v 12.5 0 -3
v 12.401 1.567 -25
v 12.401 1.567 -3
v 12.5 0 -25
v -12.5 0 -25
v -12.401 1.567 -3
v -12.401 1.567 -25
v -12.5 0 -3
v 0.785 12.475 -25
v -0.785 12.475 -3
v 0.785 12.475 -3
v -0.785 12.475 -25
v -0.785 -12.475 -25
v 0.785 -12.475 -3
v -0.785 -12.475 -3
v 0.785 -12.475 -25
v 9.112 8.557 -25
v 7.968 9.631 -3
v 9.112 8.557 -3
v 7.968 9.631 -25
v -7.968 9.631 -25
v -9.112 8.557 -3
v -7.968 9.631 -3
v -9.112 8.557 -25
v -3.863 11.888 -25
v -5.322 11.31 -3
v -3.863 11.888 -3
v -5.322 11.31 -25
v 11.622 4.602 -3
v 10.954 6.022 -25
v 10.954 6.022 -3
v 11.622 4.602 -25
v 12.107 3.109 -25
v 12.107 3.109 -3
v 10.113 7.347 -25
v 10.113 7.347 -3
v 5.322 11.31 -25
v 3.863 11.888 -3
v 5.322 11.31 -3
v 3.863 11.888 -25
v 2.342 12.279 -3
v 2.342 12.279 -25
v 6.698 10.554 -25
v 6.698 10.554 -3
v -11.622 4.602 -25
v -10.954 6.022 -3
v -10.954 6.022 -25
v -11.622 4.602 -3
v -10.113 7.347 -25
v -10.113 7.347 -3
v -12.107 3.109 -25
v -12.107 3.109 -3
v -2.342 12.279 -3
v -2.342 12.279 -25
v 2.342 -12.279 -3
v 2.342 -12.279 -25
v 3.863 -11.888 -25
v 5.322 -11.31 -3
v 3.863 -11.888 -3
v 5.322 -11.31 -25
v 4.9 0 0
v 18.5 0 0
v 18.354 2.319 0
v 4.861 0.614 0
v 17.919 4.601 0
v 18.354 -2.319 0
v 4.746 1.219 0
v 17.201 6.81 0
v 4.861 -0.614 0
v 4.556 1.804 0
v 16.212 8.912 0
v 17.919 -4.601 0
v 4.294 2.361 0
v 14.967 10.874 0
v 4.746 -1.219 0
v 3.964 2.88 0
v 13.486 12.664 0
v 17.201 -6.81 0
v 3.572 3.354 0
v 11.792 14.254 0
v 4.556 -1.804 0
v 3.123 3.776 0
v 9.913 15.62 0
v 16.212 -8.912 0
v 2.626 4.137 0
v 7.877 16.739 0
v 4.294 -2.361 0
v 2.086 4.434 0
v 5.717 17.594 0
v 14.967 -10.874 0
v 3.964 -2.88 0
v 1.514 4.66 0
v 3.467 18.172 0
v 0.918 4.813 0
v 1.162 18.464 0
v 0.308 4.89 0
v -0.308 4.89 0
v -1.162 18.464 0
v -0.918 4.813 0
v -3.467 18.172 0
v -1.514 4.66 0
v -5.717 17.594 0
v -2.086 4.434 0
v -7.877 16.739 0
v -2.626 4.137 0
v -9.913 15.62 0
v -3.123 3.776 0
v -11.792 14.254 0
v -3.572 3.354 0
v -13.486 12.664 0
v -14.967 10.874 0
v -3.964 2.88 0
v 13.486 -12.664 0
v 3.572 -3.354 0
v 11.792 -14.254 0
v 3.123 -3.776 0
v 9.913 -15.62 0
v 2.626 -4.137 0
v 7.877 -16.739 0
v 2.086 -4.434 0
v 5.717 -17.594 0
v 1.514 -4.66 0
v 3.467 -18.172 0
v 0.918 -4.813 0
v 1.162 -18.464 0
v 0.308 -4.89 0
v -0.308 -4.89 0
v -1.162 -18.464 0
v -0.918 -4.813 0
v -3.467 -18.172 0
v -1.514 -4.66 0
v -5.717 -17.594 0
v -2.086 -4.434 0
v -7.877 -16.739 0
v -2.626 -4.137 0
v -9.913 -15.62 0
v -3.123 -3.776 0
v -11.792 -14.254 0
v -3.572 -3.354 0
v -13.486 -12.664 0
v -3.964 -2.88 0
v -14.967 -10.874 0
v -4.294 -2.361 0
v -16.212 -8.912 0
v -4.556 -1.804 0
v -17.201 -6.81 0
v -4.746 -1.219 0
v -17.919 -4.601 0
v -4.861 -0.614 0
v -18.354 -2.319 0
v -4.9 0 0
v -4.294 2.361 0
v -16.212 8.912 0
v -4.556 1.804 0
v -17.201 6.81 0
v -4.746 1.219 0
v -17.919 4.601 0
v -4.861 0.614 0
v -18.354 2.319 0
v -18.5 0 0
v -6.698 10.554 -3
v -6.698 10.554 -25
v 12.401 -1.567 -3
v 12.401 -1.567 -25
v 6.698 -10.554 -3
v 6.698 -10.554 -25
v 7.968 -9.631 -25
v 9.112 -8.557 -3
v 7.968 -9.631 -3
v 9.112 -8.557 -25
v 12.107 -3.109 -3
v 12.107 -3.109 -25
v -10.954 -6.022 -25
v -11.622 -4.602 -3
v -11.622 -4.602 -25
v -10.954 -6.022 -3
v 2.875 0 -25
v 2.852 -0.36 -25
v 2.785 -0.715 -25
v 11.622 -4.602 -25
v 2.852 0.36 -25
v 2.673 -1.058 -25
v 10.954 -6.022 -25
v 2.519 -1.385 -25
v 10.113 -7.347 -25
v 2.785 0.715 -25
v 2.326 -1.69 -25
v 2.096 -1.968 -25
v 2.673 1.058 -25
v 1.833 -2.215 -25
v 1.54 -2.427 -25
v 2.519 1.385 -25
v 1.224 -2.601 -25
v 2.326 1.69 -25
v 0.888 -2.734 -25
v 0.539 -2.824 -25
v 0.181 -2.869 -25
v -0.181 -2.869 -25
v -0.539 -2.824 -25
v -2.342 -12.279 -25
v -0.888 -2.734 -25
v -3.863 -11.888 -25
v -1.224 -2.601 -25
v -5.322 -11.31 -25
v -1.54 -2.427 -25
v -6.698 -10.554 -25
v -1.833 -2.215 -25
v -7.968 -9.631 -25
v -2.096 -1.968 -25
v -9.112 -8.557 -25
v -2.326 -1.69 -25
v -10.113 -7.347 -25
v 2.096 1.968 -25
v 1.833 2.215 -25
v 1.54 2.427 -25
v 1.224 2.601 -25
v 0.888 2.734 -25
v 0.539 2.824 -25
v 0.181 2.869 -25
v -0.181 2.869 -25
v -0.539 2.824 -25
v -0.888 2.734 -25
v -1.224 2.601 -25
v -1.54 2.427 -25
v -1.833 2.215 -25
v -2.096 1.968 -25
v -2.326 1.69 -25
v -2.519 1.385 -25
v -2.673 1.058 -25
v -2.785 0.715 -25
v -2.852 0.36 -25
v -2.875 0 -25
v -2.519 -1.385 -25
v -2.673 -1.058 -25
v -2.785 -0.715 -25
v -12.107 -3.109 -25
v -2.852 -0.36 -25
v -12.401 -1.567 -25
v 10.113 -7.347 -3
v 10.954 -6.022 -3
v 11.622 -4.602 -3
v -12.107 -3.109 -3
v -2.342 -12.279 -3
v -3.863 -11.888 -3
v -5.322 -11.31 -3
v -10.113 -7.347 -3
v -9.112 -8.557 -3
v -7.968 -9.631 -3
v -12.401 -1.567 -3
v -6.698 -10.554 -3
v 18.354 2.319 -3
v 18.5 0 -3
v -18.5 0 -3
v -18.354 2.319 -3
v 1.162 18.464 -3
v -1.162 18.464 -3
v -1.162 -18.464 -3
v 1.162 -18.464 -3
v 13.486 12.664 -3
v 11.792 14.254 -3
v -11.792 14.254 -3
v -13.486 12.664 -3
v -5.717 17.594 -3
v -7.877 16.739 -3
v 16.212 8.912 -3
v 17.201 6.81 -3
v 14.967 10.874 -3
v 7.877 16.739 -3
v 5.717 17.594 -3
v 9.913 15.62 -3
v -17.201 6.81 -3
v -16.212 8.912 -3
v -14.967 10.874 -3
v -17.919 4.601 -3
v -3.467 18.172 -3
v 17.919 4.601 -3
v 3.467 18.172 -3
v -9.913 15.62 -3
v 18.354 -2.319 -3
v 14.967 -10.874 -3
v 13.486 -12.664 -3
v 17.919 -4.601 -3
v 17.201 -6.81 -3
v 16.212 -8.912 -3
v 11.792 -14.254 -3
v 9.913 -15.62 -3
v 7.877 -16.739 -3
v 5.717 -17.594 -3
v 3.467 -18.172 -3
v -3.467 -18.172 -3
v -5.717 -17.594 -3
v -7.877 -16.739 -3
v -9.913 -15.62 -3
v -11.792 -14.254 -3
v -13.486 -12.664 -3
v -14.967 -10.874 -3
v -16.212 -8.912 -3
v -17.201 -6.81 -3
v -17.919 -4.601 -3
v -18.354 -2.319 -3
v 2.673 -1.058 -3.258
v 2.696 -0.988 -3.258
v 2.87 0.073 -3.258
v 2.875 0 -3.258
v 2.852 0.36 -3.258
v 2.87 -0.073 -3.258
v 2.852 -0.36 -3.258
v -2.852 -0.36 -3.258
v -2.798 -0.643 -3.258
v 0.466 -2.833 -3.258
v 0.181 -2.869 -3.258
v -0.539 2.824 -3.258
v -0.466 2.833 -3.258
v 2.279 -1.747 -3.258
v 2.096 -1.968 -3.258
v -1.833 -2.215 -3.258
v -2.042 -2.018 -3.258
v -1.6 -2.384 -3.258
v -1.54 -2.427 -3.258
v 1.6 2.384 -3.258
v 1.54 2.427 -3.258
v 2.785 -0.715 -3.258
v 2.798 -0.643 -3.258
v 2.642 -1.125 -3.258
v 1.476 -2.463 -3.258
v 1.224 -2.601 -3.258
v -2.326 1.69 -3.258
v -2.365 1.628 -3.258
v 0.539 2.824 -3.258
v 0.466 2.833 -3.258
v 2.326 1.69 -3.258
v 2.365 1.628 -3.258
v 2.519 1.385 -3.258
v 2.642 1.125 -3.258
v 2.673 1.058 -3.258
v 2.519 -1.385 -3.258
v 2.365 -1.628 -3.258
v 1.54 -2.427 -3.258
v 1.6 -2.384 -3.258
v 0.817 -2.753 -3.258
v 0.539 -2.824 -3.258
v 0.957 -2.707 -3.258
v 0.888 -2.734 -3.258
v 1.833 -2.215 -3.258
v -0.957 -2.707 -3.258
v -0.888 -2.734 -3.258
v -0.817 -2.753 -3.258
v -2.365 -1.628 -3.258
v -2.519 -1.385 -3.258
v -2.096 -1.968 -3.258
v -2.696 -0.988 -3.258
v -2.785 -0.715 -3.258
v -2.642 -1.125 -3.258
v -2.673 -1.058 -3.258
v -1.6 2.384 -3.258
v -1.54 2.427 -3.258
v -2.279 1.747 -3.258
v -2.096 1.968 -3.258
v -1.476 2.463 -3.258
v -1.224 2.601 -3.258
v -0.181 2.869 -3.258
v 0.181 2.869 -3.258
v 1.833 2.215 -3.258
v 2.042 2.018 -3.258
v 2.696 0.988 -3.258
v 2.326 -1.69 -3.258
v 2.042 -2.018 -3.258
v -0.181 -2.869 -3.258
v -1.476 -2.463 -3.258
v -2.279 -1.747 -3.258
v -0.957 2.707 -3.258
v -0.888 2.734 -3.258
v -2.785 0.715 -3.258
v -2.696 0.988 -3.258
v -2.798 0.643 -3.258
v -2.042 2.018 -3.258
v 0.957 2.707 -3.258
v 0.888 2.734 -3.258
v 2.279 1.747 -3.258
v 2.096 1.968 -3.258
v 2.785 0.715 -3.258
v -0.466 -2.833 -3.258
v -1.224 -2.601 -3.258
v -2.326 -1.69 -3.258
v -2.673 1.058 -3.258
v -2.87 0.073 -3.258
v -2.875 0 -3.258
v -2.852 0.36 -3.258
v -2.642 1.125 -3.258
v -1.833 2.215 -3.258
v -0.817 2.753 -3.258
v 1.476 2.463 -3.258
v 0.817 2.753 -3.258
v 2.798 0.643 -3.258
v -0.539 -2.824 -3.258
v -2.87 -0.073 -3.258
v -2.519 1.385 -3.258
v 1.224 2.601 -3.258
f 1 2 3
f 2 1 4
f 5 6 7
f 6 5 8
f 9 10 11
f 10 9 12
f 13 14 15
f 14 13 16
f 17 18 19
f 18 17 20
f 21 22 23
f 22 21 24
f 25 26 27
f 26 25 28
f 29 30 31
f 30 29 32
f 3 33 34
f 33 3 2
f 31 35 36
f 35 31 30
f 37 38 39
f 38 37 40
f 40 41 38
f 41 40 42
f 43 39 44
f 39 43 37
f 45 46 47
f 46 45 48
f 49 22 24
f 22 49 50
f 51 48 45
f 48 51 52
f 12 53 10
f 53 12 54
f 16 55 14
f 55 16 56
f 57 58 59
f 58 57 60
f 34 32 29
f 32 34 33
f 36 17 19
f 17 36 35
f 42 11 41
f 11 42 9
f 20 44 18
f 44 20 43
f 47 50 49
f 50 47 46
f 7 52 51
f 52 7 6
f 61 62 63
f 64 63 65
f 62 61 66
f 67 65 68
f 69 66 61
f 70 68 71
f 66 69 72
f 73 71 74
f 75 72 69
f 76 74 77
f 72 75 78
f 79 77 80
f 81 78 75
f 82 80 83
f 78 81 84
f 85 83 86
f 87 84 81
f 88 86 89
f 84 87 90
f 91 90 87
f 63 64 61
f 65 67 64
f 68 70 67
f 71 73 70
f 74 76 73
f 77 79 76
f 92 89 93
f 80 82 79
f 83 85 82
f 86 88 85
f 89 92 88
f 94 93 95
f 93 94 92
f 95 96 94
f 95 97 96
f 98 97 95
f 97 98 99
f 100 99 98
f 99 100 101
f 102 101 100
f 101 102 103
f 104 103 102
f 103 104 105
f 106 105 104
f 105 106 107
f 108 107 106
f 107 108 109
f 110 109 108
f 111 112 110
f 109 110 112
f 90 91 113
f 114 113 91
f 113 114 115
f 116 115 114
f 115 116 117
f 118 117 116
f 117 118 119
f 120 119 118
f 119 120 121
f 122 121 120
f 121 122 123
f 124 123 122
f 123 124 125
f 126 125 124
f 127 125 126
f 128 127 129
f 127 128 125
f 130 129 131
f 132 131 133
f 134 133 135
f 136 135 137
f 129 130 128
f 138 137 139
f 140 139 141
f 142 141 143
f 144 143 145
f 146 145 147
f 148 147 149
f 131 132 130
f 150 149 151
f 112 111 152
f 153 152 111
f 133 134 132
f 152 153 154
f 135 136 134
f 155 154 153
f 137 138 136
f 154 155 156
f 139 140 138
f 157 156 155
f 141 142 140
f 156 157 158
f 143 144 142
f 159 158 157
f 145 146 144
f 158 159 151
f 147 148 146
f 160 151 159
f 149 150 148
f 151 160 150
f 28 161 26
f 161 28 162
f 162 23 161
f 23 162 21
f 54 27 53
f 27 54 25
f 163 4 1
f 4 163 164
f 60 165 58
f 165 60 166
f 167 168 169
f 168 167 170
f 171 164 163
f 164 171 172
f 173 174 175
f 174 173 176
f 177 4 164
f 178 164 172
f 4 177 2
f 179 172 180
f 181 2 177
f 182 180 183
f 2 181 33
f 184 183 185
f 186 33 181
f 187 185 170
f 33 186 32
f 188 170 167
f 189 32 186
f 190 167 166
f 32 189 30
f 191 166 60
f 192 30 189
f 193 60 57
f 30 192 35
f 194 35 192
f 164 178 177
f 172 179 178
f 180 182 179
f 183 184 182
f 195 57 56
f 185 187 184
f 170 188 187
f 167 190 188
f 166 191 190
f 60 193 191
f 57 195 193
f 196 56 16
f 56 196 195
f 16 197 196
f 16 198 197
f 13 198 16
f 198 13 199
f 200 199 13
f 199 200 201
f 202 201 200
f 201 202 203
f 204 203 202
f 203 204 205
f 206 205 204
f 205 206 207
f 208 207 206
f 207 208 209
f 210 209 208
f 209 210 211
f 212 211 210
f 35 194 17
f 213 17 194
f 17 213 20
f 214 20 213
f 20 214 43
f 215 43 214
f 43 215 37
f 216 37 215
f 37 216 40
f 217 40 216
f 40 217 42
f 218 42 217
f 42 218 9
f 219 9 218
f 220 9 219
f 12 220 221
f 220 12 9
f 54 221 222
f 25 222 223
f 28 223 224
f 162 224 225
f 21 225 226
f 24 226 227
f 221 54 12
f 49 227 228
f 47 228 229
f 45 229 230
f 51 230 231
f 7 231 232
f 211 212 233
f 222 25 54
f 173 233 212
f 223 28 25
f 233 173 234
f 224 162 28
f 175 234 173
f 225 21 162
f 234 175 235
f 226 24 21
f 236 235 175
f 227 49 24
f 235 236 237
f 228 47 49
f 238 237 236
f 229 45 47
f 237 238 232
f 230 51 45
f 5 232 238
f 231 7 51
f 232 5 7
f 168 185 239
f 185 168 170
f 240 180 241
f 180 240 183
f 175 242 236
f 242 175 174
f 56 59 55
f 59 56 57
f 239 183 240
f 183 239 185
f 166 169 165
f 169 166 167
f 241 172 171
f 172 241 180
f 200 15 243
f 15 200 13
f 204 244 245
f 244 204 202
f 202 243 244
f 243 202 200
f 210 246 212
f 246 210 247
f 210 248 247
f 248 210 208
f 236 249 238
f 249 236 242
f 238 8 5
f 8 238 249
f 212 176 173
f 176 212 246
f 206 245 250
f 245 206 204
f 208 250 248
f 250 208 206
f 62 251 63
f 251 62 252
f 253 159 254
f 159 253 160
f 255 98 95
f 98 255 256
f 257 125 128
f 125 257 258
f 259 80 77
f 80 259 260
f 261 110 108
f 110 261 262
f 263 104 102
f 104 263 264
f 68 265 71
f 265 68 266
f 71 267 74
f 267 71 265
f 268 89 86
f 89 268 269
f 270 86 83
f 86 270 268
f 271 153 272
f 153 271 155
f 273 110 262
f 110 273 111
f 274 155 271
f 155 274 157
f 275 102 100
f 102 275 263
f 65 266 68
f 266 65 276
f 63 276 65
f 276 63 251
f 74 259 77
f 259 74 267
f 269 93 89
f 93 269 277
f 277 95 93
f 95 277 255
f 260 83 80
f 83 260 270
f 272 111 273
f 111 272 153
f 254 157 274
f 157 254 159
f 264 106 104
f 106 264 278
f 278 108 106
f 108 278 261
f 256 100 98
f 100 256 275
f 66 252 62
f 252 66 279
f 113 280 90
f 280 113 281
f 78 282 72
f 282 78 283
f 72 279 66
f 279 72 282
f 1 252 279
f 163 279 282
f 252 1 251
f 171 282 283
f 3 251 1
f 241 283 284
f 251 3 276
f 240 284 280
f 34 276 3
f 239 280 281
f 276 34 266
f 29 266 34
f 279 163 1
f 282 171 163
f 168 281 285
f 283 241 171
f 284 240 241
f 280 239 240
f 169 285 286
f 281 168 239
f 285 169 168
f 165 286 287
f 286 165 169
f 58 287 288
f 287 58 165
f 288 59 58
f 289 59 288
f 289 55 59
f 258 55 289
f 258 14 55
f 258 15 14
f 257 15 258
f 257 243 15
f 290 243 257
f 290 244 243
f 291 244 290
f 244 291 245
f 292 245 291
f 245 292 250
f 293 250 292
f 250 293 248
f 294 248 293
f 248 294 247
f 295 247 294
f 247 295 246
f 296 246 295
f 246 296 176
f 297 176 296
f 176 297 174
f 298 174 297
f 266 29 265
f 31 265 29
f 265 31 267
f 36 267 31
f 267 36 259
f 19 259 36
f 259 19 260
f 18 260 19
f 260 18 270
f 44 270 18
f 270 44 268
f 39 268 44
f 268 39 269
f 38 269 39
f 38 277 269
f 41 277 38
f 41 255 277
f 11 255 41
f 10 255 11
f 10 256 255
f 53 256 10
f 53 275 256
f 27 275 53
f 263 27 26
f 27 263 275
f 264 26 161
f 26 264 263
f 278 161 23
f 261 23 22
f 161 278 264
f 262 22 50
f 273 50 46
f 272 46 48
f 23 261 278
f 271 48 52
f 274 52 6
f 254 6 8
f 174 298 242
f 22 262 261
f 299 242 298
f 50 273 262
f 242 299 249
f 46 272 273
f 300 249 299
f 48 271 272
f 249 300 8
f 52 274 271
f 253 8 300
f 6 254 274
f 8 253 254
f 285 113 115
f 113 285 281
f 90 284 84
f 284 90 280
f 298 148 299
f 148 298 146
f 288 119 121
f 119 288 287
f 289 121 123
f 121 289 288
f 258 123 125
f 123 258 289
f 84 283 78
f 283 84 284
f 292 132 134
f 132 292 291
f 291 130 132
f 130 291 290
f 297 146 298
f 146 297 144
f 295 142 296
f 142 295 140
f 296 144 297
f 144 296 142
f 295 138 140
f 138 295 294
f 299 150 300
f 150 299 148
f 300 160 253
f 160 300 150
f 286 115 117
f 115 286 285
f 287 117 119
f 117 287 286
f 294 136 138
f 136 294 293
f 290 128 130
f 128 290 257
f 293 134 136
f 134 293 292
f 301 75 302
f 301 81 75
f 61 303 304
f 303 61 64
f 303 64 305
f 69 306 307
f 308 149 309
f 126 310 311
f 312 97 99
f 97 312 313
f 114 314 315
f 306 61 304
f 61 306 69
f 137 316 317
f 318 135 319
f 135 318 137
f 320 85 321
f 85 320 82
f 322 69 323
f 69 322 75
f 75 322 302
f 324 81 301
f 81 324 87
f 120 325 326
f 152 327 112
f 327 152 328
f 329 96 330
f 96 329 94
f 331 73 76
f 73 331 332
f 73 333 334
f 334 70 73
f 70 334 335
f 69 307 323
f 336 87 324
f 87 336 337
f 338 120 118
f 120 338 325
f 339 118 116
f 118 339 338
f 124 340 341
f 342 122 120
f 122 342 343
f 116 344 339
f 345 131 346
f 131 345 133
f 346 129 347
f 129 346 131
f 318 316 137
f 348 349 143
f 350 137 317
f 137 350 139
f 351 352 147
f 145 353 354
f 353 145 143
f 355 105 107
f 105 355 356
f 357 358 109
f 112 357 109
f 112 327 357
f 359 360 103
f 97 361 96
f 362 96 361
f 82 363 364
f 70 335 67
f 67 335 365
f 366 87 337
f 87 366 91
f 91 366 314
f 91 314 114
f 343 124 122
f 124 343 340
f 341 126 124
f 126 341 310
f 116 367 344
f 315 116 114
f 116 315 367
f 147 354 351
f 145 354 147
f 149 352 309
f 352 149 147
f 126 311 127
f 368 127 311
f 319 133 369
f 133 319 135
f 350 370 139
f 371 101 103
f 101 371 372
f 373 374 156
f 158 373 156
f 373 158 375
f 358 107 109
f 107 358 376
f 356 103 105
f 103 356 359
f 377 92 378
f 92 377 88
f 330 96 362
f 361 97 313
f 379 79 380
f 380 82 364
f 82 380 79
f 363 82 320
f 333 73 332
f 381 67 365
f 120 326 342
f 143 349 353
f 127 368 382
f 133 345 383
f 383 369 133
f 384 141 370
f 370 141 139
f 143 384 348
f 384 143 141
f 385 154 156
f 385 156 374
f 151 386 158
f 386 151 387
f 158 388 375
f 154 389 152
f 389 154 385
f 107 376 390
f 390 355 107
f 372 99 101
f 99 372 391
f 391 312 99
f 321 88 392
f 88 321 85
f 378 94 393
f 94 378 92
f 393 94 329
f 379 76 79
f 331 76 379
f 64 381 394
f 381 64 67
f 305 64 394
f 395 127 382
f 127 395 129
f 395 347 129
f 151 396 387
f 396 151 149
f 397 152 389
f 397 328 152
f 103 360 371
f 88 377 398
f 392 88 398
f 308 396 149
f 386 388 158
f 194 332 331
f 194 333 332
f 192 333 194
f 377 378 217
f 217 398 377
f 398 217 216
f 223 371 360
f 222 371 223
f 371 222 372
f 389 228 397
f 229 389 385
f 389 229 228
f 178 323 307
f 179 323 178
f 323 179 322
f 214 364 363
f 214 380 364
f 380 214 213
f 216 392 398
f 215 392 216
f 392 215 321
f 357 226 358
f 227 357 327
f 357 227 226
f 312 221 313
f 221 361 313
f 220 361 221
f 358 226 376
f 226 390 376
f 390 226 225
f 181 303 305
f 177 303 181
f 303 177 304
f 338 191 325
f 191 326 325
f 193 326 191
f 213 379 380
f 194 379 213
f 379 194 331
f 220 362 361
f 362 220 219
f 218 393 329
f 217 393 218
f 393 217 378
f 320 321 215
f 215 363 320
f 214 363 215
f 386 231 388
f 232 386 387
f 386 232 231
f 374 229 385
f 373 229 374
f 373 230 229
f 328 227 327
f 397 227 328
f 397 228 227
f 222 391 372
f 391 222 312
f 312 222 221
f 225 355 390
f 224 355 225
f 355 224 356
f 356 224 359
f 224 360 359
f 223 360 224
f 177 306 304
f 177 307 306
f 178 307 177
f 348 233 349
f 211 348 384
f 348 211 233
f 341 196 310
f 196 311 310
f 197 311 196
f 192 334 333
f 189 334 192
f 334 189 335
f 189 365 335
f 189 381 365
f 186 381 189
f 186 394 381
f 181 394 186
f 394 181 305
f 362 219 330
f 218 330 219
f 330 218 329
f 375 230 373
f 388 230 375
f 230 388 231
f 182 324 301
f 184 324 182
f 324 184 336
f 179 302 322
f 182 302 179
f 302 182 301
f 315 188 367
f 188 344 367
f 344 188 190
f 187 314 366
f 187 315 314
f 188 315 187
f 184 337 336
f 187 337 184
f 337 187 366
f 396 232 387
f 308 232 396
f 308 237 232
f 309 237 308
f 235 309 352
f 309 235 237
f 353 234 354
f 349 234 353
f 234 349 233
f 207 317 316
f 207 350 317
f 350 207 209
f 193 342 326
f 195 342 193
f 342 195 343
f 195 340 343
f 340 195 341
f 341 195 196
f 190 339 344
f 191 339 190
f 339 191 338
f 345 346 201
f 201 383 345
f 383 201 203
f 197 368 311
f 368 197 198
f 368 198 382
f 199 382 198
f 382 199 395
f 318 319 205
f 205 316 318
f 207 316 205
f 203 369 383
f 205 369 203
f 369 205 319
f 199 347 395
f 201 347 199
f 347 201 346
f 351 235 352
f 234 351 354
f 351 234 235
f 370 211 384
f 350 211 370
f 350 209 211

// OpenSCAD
$fn = 50;


difference() {
	union() {
		translate(v = [0, 0, -25.0000000000]) {
			cylinder(h = 25, r = 12.5000000000);
		}
		translate(v = [0, 0, -3.0000000000]) {
			cylinder(h = 3, r = 18.5000000000);
		}
	}
	union() {
		translate(v = [0, 0, 0]) {
			rotate(a = [0, 0, 0]) {
				difference() {
					union() {
						translate(v = [0, 0, -3.7000000000]) {
							cylinder(h = 3.7000000000, r = 12.5000000000, r1 = 2.6000000000, r2 = 4.9000000000);
						}
						translate(v = [0, 0, -25.0000000000]) {
							cylinder(h = 25, r = 2.6000000000);
						}
						translate(v = [0, 0, -25.0000000000]) {
							cylinder(h = 25, r = 2.8750000000);
						}
						translate(v = [0, 0, -25.0000000000]) {
							cylinder(h = 25, r = 2.6000000000);
						}
					}
					union();
				}
			}
		}
	}
}
